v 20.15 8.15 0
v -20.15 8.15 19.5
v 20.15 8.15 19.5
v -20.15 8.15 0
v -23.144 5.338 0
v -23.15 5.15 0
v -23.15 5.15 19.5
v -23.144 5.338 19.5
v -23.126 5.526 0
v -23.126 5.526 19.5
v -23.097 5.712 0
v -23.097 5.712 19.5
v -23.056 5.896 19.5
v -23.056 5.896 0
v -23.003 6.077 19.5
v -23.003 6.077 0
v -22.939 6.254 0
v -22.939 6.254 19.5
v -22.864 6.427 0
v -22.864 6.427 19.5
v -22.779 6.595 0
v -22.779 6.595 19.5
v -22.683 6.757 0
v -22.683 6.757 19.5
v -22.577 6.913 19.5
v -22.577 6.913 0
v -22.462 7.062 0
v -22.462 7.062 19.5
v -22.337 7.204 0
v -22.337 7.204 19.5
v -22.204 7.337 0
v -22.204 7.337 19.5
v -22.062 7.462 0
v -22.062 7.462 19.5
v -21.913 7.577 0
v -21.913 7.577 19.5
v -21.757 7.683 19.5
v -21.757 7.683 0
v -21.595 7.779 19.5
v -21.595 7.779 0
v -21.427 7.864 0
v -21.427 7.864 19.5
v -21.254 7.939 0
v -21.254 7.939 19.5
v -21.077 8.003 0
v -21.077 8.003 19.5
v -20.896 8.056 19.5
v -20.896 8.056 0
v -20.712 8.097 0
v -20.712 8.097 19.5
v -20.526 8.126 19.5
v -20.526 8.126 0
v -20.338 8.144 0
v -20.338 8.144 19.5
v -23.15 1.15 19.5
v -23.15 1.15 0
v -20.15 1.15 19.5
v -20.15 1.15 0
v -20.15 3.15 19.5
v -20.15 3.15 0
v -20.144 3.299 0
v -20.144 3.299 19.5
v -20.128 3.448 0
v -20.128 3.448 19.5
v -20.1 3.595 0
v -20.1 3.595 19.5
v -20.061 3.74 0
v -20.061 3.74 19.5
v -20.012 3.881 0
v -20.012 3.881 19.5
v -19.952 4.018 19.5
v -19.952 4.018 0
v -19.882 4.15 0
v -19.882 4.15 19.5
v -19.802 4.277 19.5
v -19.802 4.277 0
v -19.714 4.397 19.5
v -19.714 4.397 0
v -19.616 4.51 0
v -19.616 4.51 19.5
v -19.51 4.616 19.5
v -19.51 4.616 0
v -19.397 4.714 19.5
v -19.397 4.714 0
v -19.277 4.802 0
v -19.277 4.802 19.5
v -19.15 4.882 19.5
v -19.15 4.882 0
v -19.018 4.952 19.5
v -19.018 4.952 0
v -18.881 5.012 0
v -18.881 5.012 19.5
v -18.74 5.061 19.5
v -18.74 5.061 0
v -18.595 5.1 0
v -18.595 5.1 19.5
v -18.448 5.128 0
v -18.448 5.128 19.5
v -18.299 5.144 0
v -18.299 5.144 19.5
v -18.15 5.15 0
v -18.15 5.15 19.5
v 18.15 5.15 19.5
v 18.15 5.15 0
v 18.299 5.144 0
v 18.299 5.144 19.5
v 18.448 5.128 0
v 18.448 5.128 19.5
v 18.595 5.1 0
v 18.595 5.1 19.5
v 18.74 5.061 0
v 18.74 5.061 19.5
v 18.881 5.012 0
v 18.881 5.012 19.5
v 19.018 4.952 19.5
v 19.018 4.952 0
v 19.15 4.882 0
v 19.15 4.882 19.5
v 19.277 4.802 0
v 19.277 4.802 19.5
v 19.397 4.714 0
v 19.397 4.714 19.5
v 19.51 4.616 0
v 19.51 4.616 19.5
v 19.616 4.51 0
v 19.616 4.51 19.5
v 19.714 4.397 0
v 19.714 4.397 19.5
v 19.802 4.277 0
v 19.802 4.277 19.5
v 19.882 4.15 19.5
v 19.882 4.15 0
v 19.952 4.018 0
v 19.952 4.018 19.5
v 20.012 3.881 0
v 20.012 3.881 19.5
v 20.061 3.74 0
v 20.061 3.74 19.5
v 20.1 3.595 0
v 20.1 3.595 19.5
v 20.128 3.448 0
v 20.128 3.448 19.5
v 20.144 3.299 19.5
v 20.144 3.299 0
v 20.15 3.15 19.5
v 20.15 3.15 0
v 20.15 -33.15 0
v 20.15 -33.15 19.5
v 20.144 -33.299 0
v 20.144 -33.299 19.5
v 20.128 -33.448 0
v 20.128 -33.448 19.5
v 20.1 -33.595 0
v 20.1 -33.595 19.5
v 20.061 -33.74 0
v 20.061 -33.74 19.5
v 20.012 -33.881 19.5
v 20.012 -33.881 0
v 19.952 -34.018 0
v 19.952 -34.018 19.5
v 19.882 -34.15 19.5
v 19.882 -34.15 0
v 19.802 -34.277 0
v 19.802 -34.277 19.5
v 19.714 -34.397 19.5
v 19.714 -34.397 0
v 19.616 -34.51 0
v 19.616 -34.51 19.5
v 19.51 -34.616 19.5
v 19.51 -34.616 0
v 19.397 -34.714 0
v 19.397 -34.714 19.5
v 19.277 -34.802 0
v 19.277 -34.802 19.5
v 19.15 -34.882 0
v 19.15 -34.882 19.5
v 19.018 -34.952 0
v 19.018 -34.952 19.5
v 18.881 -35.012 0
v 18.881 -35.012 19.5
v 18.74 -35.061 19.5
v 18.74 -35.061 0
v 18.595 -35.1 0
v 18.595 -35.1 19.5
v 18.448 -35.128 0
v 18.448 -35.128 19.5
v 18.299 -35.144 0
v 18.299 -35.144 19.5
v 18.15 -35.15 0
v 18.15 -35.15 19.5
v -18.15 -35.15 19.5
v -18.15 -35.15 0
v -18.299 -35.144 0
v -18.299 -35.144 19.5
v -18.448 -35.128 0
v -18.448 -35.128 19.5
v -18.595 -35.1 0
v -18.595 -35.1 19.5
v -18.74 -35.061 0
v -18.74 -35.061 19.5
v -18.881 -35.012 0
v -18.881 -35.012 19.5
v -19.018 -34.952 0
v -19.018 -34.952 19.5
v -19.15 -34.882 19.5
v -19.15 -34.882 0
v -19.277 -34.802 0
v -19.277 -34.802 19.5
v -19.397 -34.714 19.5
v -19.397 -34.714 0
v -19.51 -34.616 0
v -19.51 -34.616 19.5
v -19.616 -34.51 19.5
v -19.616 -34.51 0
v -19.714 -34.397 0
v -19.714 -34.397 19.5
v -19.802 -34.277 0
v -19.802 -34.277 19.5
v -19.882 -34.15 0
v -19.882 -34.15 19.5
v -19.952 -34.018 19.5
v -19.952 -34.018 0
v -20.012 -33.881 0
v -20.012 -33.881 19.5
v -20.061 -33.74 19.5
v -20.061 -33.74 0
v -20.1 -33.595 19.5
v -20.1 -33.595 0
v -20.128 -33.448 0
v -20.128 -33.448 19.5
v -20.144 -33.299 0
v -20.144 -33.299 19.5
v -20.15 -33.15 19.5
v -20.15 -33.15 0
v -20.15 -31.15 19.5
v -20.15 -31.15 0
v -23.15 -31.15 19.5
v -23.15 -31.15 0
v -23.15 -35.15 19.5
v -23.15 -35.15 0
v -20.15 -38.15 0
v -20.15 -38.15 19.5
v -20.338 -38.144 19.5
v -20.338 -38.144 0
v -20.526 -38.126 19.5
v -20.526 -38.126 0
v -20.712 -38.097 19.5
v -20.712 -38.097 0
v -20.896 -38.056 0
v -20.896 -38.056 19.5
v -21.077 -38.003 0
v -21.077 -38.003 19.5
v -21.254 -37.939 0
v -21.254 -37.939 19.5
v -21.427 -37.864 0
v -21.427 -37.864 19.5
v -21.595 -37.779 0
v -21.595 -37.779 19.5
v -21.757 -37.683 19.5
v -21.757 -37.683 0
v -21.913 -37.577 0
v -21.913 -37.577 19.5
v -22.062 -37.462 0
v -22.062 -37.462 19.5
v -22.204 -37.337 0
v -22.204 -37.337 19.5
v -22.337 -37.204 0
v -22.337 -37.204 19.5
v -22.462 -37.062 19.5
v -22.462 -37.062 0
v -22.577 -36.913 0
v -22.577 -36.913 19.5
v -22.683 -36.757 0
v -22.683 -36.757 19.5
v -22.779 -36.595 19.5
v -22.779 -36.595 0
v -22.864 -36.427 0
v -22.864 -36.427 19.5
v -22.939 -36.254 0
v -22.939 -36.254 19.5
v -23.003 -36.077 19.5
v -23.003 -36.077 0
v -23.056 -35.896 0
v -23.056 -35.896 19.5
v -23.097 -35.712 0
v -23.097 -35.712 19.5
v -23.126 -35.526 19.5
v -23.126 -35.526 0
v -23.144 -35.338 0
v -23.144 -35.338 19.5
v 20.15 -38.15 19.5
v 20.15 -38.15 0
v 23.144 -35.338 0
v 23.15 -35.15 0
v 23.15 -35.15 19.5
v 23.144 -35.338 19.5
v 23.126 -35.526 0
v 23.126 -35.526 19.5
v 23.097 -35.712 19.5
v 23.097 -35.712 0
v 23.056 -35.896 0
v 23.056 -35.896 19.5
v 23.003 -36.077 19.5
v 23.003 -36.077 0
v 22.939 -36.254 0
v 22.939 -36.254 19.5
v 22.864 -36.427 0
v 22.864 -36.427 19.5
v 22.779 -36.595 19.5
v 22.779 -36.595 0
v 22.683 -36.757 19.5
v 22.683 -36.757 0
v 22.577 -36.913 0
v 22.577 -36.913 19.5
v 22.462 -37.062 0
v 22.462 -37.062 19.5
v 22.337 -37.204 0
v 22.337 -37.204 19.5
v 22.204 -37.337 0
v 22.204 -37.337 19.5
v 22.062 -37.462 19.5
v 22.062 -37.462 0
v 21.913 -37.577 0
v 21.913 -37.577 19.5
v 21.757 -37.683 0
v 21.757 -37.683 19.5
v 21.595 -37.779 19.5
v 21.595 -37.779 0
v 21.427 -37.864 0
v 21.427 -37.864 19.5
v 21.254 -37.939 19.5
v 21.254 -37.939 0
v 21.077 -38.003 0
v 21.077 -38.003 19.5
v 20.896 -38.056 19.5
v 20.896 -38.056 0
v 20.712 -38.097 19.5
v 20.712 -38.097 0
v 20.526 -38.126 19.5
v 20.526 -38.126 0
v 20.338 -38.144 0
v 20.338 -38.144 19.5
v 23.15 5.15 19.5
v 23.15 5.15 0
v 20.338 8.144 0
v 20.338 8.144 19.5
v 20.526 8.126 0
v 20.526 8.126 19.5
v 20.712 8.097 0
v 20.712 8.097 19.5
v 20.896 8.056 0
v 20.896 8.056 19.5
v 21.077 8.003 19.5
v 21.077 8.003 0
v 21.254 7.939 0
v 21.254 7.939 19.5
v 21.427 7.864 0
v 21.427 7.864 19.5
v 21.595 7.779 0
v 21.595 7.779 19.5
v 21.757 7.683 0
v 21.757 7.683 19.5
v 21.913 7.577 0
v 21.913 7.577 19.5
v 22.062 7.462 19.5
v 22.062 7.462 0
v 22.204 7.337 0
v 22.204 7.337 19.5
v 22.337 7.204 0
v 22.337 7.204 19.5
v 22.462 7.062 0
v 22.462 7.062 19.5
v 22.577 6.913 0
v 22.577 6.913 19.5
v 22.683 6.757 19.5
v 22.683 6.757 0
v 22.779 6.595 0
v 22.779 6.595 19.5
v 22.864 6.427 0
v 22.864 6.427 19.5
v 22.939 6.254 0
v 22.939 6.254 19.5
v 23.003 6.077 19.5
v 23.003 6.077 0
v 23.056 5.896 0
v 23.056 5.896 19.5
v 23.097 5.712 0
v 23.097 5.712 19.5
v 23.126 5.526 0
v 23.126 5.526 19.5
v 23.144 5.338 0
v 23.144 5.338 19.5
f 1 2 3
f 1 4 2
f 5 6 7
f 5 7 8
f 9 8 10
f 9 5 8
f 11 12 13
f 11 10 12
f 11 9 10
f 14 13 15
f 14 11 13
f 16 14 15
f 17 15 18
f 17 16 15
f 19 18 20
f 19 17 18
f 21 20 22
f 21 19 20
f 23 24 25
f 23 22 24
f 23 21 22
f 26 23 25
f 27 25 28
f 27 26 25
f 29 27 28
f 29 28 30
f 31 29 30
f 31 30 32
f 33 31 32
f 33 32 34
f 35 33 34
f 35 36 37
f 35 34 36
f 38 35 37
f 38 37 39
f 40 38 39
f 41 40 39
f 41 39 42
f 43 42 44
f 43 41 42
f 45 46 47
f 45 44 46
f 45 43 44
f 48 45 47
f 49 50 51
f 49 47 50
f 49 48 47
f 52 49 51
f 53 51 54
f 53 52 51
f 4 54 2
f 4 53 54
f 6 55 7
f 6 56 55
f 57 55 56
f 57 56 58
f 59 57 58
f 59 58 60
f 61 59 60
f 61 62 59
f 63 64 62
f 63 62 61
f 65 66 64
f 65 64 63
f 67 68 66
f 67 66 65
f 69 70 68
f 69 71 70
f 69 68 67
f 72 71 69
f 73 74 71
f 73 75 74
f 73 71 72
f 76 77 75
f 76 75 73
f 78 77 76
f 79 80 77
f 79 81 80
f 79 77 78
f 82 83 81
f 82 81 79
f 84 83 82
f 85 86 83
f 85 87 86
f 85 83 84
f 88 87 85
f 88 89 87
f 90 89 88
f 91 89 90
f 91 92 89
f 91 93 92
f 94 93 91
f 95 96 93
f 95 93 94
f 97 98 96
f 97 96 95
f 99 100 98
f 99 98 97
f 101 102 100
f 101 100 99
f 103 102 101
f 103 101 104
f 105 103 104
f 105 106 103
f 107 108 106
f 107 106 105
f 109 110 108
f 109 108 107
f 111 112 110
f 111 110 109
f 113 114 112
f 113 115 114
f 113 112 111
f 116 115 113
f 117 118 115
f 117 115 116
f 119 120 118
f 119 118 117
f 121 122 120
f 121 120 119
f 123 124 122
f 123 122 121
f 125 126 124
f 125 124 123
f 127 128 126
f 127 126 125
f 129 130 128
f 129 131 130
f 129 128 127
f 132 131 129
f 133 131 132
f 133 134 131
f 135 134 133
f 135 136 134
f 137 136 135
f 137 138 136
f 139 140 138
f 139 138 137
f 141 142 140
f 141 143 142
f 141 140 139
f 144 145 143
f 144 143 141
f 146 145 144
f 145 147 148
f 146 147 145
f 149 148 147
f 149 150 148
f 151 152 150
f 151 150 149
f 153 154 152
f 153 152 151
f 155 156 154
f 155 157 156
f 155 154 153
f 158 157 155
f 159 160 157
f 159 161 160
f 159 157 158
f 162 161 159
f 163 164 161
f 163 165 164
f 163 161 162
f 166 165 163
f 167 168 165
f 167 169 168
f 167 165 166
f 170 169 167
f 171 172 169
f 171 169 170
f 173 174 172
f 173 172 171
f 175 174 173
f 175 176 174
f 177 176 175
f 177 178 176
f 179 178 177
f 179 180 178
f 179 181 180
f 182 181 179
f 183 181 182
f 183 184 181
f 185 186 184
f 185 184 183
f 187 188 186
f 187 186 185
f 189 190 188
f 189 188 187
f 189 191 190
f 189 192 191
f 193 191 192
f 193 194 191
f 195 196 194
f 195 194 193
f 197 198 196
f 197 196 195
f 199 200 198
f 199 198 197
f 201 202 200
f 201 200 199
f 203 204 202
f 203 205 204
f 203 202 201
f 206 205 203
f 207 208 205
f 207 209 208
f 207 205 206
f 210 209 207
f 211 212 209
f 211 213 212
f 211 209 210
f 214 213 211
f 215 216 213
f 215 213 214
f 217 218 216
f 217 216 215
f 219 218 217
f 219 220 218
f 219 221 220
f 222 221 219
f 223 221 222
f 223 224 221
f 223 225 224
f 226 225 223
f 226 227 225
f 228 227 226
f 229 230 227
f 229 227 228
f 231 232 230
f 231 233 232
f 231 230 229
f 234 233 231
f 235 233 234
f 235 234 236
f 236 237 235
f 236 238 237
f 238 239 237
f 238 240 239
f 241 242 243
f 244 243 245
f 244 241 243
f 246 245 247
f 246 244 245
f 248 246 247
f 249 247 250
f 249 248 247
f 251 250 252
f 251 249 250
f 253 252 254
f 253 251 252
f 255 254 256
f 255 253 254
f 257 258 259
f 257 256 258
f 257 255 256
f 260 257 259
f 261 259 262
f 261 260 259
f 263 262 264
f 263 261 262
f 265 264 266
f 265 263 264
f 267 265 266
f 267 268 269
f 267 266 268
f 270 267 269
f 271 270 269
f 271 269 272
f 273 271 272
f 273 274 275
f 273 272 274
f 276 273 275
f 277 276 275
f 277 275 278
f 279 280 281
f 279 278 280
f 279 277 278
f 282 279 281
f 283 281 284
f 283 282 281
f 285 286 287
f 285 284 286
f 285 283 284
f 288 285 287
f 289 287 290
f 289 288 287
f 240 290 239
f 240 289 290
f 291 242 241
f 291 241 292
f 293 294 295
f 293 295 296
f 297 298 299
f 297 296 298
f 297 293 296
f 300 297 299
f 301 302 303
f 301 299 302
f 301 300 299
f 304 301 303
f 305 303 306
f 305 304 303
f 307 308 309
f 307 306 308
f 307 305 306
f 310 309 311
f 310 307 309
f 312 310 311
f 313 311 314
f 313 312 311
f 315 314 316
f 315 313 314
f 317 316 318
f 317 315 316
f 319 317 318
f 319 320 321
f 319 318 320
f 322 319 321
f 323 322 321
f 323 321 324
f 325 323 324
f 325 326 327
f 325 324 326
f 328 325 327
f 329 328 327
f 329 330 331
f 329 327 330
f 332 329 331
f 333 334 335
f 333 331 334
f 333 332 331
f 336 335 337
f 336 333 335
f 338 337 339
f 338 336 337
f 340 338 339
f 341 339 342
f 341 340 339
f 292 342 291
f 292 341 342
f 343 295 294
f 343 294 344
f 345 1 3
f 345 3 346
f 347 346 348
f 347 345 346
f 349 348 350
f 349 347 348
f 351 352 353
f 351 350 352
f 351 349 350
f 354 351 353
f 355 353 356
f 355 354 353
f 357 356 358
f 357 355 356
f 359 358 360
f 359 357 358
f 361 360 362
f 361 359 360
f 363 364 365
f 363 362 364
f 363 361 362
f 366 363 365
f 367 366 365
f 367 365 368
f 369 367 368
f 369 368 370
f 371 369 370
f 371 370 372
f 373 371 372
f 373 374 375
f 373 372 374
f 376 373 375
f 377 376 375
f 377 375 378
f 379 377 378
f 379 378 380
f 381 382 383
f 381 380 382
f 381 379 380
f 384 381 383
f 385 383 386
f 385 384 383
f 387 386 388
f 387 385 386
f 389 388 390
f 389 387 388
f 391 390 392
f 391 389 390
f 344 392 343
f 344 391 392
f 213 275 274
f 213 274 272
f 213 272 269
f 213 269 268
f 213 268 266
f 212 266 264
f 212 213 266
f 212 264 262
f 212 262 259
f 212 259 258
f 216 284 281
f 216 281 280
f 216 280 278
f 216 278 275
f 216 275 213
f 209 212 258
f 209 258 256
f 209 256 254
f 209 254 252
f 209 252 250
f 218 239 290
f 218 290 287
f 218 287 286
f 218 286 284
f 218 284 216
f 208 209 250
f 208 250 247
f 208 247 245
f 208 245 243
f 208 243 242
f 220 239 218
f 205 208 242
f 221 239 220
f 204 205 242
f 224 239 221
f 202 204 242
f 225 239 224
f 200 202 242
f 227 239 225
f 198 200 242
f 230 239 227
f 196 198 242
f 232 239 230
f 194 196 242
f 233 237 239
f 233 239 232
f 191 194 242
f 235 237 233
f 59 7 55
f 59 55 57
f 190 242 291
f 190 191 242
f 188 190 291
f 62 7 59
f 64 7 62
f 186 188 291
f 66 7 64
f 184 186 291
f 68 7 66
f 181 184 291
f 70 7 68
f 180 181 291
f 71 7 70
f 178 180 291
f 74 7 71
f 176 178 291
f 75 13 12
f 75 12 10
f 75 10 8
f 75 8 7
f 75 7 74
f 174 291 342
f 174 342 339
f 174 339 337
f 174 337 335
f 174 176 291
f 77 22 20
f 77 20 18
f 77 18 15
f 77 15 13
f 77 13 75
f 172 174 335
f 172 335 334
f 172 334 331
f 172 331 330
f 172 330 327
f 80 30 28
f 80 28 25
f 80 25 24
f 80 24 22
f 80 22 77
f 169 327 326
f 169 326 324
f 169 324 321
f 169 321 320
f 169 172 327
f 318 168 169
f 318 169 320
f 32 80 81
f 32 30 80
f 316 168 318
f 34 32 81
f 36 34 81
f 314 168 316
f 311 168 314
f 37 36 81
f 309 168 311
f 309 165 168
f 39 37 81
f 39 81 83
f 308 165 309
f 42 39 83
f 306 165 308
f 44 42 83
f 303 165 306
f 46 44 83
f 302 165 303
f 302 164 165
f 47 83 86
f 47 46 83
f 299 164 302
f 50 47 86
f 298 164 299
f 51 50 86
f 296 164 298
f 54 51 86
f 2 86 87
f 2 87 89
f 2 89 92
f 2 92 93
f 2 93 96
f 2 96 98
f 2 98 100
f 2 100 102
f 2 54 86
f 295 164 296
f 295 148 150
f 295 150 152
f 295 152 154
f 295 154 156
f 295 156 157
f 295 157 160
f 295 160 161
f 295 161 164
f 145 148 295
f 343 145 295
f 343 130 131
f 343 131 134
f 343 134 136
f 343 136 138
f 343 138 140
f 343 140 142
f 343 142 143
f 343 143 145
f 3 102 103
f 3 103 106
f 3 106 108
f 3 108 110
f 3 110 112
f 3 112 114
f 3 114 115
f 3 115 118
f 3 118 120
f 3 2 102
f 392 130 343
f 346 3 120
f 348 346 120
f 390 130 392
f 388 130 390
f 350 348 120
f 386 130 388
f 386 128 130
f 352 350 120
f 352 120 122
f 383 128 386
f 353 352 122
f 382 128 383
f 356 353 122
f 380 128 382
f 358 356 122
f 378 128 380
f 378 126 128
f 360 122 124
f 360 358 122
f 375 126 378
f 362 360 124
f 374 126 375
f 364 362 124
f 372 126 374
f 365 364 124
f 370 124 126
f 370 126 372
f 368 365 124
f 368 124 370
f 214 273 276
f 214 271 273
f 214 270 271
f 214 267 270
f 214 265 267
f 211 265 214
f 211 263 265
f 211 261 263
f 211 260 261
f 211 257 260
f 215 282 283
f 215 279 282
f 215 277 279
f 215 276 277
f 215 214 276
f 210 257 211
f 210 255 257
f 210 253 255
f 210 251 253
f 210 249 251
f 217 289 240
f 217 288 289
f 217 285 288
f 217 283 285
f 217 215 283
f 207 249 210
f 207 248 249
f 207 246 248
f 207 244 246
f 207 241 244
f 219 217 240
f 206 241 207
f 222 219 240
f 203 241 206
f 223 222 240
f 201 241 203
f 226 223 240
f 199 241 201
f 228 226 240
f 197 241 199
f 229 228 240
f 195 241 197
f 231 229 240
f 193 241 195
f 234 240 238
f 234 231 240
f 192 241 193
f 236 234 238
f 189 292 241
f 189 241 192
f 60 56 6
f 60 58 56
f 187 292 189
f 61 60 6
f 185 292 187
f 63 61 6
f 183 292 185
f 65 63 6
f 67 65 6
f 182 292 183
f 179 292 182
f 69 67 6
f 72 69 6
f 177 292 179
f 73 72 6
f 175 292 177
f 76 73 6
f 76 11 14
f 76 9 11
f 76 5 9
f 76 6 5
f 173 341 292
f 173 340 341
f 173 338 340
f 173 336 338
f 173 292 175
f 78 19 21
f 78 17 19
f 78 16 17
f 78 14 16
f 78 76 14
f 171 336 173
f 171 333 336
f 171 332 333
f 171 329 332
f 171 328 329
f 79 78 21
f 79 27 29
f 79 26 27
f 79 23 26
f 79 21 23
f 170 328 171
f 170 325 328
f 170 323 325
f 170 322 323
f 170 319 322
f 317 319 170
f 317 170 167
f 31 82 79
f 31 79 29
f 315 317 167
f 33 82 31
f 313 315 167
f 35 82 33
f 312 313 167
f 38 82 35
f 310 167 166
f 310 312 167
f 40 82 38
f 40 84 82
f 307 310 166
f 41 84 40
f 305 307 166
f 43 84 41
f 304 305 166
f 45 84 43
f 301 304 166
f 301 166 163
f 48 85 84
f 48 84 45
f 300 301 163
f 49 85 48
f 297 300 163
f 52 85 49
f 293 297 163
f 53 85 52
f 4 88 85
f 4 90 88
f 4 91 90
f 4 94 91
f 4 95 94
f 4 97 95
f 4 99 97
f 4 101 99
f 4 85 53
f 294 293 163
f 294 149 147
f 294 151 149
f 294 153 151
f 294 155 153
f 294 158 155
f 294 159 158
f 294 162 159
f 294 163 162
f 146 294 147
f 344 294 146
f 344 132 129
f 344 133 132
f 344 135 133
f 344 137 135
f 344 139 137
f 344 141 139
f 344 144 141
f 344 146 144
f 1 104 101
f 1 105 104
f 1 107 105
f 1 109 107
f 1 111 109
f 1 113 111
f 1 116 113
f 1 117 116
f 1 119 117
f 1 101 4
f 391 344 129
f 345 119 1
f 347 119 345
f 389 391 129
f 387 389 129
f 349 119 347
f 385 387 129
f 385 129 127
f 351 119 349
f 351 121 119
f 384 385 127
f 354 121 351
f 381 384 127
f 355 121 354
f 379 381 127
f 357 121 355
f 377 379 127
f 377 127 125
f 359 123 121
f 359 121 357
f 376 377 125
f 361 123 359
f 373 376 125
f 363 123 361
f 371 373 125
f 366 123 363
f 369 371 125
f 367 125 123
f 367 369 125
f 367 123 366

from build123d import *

# Parameters (mm, degrees)
BOSS_EXTRUDE1_DEPTH = 19.5


with BuildPart() as part:
    # Sketch1 → Boss-Extrude1 (new body)
    with BuildSketch(Plane(origin=(0, 0, 0), x_dir=(0, 1, 0), z_dir=(0, 0, 1))):
        with BuildLine():
            Line((8.15, 18.15), (8.15, 20.15))
            ThreePointArc((8.15, 20.15), (7.271320344, 22.271320344), (5.15, 23.15))
            Line((5.15, 23.15), (1.15, 23.15))
            Line((1.15, 23.15), (1.15, 20.15))
            Line((1.15, 20.15), (3.15, 20.15))
            ThreePointArc((3.15, 20.15), (4.564213562, 19.564213562), (5.15, 18.15))
            Line((5.15, 18.15), (5.15, -18.15))
            ThreePointArc((5.15, -18.15), (4.564213562, -19.564213562), (3.15, -20.15))
            Line((3.15, -20.15), (-33.15, -20.15))
            ThreePointArc((-33.15, -20.15), (-34.564213562, -19.564213562), (-35.15, -18.15))
            Line((-35.15, -18.15), (-35.15, 18.15))
            ThreePointArc((-35.15, 18.15), (-34.564213562, 19.564213562), (-33.15, 20.15))
            Line((-33.15, 20.15), (-31.15, 20.15))
            Line((-31.15, 20.15), (-31.15, 23.15))
            Line((-31.15, 23.15), (-35.15, 23.15))
            ThreePointArc((-35.15, 23.15), (-37.271320344, 22.271320344), (-38.15, 20.15))
            Line((-38.15, 20.15), (-38.15, -20.15))
            ThreePointArc((-38.15, -20.15), (-37.271320344, -22.271320344), (-35.15, -23.15))
            Line((-35.15, -23.15), (5.15, -23.15))
            ThreePointArc((5.15, -23.15), (7.271320344, -22.271320344), (8.15, -20.15))
            Line((8.15, -20.15), (8.15, 18.15))
        make_face()
    extrude(amount=BOSS_EXTRUDE1_DEPTH)


solid = part.part
